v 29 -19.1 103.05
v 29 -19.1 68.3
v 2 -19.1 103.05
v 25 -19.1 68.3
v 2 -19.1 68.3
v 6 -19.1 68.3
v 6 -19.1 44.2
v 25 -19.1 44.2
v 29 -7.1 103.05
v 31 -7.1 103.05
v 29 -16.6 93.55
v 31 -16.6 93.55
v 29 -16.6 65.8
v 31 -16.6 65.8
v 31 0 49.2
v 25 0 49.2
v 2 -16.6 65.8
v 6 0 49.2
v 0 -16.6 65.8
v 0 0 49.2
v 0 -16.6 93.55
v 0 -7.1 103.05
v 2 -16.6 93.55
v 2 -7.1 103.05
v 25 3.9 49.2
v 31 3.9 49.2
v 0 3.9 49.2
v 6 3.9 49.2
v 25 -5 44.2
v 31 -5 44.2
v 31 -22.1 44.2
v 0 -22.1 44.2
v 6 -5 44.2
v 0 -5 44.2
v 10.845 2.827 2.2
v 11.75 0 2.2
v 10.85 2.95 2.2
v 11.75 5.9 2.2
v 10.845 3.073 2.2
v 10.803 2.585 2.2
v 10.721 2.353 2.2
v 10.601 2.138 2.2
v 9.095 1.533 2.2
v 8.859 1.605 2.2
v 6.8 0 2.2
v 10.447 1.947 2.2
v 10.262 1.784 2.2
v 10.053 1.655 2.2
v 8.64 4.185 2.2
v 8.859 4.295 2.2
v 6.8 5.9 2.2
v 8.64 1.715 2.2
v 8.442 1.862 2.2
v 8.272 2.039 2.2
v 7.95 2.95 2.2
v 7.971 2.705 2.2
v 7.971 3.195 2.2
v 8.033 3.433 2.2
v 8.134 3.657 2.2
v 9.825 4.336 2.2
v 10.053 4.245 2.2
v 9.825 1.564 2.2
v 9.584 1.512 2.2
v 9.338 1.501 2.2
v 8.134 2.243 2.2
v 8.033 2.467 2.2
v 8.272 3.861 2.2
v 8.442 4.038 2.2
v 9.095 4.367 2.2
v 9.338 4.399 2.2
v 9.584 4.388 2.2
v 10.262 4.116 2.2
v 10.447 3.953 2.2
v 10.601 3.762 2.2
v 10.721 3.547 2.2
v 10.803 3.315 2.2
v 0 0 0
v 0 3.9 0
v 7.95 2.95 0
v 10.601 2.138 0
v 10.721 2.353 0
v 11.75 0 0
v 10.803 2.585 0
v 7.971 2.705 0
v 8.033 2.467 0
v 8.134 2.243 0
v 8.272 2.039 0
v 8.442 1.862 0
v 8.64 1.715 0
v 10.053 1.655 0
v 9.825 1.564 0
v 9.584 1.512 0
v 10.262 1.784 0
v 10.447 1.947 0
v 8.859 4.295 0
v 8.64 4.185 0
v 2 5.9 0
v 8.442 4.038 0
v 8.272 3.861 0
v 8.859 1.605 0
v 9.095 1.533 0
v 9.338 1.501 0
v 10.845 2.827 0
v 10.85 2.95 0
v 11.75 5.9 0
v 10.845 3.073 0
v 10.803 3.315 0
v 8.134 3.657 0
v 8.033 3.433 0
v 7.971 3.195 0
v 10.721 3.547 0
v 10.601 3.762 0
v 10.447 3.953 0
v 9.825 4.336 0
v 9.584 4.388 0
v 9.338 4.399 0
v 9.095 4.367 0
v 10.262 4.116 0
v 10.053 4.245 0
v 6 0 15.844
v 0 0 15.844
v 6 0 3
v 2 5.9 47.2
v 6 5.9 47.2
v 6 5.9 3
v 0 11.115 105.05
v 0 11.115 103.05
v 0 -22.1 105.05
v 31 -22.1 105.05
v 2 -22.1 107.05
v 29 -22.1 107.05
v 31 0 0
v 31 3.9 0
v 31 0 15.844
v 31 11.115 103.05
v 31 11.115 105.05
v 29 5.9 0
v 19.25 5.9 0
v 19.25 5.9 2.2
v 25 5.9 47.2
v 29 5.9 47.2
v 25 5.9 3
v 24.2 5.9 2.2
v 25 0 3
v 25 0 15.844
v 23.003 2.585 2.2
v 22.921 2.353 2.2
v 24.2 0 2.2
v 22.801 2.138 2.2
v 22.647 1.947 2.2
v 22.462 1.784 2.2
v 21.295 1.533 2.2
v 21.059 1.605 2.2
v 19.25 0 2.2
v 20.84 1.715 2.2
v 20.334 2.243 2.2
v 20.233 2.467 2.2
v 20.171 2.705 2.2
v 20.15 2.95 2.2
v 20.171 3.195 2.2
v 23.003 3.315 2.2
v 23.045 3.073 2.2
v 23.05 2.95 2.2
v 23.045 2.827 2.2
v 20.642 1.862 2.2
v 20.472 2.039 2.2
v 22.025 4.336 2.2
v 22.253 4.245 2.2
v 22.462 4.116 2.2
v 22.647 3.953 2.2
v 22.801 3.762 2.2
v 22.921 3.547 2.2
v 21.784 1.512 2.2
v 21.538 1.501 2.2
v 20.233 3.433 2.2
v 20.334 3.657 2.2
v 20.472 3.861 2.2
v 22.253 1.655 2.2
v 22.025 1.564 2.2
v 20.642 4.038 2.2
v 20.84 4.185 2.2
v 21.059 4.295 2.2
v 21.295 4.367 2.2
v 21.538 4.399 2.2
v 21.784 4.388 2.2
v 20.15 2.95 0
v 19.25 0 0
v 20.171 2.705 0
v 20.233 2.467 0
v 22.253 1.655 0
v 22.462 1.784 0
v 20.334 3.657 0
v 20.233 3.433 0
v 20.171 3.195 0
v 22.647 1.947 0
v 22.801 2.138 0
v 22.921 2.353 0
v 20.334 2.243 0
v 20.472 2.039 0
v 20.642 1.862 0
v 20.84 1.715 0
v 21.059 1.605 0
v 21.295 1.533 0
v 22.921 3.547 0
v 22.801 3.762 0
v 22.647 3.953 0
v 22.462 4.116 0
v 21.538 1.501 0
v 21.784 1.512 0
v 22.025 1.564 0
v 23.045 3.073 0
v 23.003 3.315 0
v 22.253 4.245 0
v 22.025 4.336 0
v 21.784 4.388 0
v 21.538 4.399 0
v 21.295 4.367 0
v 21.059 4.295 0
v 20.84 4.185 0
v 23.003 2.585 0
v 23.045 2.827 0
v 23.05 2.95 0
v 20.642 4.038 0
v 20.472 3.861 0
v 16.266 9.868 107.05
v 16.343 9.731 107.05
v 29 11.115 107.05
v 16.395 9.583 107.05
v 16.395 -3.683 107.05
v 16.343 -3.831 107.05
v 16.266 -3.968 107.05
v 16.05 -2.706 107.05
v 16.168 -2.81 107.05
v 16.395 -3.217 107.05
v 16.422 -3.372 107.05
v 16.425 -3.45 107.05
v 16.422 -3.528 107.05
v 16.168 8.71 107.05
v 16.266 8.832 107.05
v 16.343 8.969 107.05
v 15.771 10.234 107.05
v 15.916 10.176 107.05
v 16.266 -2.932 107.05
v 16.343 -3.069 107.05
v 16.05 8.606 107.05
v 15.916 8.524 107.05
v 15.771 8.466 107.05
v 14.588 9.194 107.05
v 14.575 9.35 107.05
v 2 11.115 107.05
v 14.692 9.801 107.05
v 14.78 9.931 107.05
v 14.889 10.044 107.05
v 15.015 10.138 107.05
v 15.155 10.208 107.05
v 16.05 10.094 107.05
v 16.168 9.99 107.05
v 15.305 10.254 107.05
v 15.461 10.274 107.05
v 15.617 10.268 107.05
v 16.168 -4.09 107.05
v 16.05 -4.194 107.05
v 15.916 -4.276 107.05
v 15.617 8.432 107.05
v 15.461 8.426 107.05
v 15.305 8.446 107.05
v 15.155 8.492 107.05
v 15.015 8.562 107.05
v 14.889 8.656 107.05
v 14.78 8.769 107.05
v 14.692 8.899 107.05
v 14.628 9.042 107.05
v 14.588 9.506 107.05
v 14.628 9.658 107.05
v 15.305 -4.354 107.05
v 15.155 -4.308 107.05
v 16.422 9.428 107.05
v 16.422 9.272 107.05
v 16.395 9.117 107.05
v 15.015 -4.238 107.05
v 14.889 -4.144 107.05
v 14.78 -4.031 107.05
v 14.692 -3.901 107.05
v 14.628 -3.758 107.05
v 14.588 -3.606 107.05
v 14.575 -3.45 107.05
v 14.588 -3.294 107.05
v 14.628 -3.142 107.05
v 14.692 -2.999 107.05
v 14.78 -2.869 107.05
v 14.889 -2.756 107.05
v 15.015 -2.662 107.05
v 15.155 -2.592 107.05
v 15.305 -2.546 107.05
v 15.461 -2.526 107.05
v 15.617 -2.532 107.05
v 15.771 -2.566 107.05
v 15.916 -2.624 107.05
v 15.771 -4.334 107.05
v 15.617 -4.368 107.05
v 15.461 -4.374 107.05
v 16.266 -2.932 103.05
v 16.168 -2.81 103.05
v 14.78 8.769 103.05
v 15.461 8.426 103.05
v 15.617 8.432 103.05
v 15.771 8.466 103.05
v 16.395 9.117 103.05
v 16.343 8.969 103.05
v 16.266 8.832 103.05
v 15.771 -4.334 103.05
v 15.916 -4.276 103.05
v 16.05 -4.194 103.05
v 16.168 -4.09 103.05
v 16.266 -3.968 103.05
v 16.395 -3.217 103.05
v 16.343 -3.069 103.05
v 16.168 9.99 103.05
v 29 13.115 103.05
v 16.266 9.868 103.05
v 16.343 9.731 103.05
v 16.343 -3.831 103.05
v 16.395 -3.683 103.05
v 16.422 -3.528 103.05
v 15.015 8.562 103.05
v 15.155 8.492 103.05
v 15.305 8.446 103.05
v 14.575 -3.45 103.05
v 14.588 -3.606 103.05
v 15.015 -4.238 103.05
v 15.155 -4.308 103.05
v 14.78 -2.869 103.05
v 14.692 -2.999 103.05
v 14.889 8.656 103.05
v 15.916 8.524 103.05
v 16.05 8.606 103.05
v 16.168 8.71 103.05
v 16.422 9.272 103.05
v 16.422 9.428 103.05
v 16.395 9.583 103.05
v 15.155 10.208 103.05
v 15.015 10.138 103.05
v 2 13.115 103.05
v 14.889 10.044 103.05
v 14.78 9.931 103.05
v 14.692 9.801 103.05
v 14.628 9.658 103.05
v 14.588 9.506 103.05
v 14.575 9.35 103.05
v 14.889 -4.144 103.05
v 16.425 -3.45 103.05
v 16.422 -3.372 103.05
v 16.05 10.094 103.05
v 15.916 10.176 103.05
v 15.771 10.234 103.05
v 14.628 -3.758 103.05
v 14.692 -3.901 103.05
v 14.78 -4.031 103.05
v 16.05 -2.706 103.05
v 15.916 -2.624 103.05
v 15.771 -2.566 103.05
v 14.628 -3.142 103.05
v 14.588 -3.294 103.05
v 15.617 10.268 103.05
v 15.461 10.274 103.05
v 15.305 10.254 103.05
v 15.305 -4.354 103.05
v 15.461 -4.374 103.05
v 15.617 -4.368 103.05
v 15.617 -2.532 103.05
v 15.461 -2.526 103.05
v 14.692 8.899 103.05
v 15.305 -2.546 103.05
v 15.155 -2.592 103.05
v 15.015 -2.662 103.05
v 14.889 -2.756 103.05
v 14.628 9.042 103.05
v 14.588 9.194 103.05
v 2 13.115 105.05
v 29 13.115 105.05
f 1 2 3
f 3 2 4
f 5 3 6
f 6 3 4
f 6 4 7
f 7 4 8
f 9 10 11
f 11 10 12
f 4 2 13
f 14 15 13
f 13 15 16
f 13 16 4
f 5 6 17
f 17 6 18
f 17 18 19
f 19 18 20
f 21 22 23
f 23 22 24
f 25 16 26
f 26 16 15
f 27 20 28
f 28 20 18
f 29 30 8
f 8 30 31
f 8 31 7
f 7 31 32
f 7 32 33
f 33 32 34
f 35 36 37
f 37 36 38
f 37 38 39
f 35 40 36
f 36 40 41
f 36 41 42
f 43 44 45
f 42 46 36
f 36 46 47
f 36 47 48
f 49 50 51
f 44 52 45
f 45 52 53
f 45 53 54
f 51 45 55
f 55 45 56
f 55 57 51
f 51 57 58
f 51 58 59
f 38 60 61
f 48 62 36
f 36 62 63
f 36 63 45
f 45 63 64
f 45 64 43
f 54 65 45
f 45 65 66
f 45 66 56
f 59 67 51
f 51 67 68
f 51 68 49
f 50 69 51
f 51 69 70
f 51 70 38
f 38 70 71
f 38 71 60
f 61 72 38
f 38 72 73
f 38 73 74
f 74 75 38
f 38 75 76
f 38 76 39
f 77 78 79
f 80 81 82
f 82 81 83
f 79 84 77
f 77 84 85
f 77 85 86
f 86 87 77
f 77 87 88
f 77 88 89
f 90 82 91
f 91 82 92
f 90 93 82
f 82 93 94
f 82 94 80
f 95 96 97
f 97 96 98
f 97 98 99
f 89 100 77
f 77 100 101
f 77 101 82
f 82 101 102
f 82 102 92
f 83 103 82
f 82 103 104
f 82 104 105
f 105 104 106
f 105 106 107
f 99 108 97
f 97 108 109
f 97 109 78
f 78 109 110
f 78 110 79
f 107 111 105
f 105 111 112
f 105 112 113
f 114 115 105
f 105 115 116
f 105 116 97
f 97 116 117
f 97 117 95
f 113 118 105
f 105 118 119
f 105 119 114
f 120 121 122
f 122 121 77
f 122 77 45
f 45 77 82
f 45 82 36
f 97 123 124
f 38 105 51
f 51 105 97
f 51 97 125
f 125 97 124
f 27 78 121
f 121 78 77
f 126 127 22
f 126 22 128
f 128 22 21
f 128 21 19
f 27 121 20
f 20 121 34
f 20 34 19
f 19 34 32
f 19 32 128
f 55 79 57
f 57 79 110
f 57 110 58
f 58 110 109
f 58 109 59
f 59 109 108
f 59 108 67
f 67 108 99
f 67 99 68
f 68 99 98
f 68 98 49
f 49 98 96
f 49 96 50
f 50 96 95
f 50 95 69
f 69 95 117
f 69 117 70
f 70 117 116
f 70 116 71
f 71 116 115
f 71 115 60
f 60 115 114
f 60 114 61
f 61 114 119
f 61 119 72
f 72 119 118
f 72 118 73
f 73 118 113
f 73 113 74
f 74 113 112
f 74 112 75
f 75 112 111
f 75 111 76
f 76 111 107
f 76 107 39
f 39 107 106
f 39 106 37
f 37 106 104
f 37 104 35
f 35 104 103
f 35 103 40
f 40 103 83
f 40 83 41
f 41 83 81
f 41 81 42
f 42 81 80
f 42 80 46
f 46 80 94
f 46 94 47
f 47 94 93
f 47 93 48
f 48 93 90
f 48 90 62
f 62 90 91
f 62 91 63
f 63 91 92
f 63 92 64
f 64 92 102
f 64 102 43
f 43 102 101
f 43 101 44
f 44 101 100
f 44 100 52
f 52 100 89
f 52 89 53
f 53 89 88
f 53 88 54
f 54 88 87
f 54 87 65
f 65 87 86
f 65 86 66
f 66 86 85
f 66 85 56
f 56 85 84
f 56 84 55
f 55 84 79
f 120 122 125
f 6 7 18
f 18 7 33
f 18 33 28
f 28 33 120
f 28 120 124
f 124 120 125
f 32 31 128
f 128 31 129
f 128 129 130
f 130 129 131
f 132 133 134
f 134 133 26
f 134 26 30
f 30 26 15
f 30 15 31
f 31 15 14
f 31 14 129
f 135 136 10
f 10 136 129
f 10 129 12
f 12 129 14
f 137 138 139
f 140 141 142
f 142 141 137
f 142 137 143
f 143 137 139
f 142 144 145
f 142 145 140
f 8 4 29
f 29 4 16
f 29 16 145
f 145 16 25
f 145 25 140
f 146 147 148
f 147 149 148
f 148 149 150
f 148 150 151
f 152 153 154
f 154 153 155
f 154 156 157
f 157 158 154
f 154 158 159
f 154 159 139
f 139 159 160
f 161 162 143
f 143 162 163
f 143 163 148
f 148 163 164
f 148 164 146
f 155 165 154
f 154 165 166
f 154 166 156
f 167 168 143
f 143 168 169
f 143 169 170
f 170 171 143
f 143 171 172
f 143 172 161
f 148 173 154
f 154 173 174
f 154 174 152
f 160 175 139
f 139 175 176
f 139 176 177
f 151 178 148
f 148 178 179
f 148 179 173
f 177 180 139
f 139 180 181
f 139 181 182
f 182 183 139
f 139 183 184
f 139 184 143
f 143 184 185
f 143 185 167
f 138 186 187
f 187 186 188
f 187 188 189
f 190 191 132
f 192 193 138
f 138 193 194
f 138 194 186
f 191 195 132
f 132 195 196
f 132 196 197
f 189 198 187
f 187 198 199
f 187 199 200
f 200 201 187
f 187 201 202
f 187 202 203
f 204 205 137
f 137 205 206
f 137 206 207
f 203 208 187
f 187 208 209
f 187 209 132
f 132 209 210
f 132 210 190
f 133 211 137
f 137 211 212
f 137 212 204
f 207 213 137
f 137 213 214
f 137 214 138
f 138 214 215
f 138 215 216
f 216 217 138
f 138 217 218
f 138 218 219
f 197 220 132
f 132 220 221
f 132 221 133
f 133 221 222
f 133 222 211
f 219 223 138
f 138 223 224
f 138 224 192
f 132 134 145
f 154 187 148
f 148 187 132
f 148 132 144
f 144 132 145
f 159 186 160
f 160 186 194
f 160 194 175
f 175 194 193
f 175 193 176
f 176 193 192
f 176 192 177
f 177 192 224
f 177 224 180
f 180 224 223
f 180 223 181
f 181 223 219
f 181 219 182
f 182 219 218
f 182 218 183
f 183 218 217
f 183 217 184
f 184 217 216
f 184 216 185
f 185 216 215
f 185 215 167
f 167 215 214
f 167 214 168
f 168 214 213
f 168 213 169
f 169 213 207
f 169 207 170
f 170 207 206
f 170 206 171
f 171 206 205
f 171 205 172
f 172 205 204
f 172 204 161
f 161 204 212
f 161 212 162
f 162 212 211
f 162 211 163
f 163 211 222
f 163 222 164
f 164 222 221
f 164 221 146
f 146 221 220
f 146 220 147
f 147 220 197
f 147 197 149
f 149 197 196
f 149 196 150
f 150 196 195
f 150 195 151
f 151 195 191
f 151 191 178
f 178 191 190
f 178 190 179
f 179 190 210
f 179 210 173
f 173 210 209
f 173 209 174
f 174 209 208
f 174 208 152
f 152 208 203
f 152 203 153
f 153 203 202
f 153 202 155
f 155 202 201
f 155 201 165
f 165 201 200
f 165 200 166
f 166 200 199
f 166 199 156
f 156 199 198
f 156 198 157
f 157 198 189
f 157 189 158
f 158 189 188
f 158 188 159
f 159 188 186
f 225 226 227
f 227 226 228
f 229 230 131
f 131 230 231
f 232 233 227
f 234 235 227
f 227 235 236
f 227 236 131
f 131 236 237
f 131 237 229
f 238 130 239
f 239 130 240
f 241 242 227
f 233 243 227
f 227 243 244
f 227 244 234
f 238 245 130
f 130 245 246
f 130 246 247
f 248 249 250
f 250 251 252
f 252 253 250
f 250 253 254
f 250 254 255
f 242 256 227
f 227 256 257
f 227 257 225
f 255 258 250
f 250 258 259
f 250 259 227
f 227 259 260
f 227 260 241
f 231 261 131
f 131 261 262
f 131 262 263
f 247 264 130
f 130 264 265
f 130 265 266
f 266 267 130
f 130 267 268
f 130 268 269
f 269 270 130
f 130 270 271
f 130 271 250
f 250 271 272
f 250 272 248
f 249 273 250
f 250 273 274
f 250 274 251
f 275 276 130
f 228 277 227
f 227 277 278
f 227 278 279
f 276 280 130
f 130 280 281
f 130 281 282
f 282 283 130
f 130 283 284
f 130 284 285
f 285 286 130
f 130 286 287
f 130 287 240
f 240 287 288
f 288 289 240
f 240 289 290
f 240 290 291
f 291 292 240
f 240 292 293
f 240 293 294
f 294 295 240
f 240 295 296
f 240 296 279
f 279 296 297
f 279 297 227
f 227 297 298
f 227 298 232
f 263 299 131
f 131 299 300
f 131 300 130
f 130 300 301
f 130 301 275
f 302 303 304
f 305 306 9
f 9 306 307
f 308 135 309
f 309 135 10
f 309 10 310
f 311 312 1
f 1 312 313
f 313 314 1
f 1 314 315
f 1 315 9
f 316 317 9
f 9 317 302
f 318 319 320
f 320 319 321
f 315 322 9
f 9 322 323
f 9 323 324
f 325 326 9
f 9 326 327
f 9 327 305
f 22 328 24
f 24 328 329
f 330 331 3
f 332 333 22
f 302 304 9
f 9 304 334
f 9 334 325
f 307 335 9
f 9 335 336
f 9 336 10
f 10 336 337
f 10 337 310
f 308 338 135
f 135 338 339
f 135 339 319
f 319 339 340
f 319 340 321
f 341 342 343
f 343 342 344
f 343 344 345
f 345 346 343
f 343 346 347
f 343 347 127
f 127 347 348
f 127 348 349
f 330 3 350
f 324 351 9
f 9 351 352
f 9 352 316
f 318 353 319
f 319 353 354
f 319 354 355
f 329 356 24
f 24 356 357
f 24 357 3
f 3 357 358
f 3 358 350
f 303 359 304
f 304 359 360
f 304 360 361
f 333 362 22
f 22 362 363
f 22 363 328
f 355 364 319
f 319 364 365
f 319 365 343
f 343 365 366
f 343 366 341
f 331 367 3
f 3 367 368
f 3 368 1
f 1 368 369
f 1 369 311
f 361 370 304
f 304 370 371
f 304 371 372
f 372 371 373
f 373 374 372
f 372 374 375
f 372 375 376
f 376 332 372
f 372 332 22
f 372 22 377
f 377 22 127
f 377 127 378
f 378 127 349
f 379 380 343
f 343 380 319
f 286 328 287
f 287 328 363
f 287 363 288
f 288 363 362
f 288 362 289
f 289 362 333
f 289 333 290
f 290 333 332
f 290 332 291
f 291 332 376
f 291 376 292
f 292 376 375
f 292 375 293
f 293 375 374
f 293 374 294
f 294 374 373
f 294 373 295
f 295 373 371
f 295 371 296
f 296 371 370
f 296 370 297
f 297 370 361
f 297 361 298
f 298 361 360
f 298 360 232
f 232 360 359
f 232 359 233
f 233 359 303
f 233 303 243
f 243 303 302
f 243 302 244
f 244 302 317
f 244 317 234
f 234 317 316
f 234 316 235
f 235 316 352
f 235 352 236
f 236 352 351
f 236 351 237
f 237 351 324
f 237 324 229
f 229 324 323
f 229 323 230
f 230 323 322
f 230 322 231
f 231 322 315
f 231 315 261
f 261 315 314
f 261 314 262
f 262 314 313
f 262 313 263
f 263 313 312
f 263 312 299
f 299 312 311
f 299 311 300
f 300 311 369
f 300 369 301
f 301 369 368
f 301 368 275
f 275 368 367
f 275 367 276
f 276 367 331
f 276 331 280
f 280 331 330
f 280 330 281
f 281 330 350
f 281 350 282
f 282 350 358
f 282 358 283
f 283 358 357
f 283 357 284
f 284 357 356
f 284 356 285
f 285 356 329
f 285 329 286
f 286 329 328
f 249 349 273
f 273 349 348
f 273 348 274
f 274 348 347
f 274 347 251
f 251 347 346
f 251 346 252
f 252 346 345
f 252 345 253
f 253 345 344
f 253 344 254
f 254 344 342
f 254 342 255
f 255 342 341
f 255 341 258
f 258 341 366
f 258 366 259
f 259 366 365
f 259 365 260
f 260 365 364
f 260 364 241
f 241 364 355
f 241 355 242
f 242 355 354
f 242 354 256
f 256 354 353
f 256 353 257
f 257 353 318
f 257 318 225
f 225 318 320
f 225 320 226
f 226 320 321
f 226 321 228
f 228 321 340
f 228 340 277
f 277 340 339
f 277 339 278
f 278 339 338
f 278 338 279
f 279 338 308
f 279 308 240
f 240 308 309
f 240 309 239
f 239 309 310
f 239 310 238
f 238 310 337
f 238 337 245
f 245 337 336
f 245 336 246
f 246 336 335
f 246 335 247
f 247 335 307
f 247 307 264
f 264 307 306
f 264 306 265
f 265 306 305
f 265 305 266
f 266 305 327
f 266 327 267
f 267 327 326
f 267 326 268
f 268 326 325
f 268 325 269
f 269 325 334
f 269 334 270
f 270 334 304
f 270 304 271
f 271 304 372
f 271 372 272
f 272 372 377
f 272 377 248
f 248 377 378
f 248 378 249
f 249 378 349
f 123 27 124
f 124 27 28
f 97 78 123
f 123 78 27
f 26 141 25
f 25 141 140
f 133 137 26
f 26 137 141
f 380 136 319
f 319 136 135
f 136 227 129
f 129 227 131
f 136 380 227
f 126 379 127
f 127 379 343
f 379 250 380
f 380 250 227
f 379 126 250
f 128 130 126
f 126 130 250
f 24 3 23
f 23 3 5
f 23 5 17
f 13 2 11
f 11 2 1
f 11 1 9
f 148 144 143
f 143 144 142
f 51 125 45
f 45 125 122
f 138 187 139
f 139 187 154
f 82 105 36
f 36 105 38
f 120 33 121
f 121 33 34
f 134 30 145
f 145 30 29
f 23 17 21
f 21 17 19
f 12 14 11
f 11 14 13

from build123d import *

# Parameters (mm, degrees)
SKETCH1_R             = 1.45
BOSS_EXTRUDE1_DEPTH   = 2.2
BOSS_EXTRUDE1_2_DEPTH = 2.2
SKETCH8_W             = 6
SKETCH8_H             = 5.9
BOSS_EXTRUDE6_DEPTH   = 42
BOSS_EXTRUDE7_DEPTH   = 5
SKETCH10_W            = 31
SKETCH10_H            = 3
BOSS_EXTRUDE8_DEPTH   = 53.85
SKETCH11_W            = 31
SKETCH11_H            = 35.214875224
SKETCH11_R            = 0.925
BOSS_EXTRUDE9_DEPTH   = 4
CHAMFER6_SIZE         = 19.1
CHAMFER7_SIZE         = 12
CHAMFER8_SIZE         = 2
CUT_EXTRUDE2_START    = 2
CUT_EXTRUDE2_DEPTH    = 27
CHAMFER10_SIZE        = 0.8
SKETCH14_W            = 7.5
SKETCH14_H            = 5.9
CUT_EXTRUDE3_DEPTH    = 112.547893301
CHAMFER11_SIZE        = 5
CHAMFER11_SIZE2       = 28.356409098
SKETCH15_W            = 2
SKETCH15_H            = 27.75
BOSS_EXTRUDE10_DEPTH  = 2.5


with BuildPart() as part:
    # Sketch1 → Boss-Extrude1 (new body)
    with BuildSketch(Plane.XY):
        Polygon((0, 0), (0, 5.9), (12.25, 5.9), (12.25, 0), (2.5, 0), align=None)
        with Locations((9.4, 2.95)):
            Circle(SKETCH1_R, mode=Mode.SUBTRACT)
    extrude(amount=BOSS_EXTRUDE1_DEPTH)



with BuildPart() as body_2:
    # Sketch1 → Boss-Extrude1 2 (new body)
    with BuildSketch(Plane.XY):
        Polygon((31, 0), (31, 5.9), (18.75, 5.9), (18.75, 0), (28.5, 0), align=None)
        with Locations((21.6, 2.95)):
            Circle(SKETCH1_R, mode=Mode.SUBTRACT)
    extrude(amount=BOSS_EXTRUDE1_2_DEPTH)


with BuildPart() as part_1:
    add(part.part)

    add(body_2.part)  # Boss-Extrude6 merges body 2
    # Sketch8 → Boss-Extrude6 (add)
    with BuildSketch(Plane.XY.offset(2.2)):
        with Locations((3, 2.95)):
            Rectangle(SKETCH8_W, SKETCH8_H)
        with Locations((28, 2.95)):
            Rectangle(SKETCH8_W, SKETCH8_H)
    extrude(amount=BOSS_EXTRUDE6_DEPTH)

    # Sketch9 → Boss-Extrude7 (add)
    with BuildSketch(Plane.XY.offset(44.2)):
        Polygon((0, 5.9), (0, -22.1), (31, -22.1), (31, 5.9), (25, 5.9), (25, -19.1), (6, -19.1), (6, 5.9), align=None)
    extrude(amount=BOSS_EXTRUDE7_DEPTH)

    # Sketch10 → Boss-Extrude8 (add)
    with BuildSketch(Plane.XY.offset(49.2)):
        with Locations((15.5, -20.6)):
            Rectangle(SKETCH10_W, SKETCH10_H)
    extrude(amount=BOSS_EXTRUDE8_DEPTH)

    # Sketch11 → Boss-Extrude9 (add)
    with BuildSketch(Plane.XY.offset(103.05)):
        with Locations((15.5, -4.492562388)):
            Rectangle(SKETCH11_W, SKETCH11_H)
        with Locations((15.5, -3.45)):
            Circle(SKETCH11_R, mode=Mode.SUBTRACT)
        with Locations(Location((15.5, 9.35, 0), (0, 0, 180))):
            Circle(SKETCH11_R, mode=Mode.SUBTRACT)
    extrude(amount=BOSS_EXTRUDE9_DEPTH)

    # Chamfer6
    chamfer6_edges = [part_1.edges().sort_by_distance(p)[0] for p in [
        (3, -19.1, 49.2),
        (28, -19.1, 49.2),
    ]]
    chamfer(chamfer6_edges, length=CHAMFER6_SIZE)

    # Chamfer7
    chamfer7_edges = [part_1.edges().sort_by_distance(p)[0] for p in [
        (15.5, -19.1, 103.05),
    ]]
    chamfer(chamfer7_edges, length=CHAMFER7_SIZE)

    # Chamfer8
    chamfer8_edges = [part_1.edges().sort_by_distance(p)[0] for p in [
        (0, -4.492562388, 107.05),
        (31, -4.492562388, 107.05),
        (15.5, 13.114875224, 107.05),
        (0, 13.114875224, 105.05),
        (31, 13.114875224, 105.05),
        (31, 5.9, 24.6),
        (3, 5.9, 49.2),
        (28, 5.9, 49.2),
        (0, 5.9, 24.6),
    ]]
    chamfer(chamfer8_edges, length=CHAMFER8_SIZE)

    # Sketch13 → Cut-Extrude2 (cut)
    with BuildSketch(Plane(origin=(0, 0, 0), x_dir=(0, 0, -1), z_dir=(1, 0, 0)).offset(CUT_EXTRUDE2_START)):
        Polygon((-103.05, -7.1), (-91.05, -19.1), (-103.05, -19.1), align=None)
    extrude(amount=CUT_EXTRUDE2_DEPTH, mode=Mode.SUBTRACT)

    # Chamfer10
    chamfer10_edges = [part_1.edges().sort_by_distance(p)[0] for p in [
        (6, 2.95, 2.2),
        (25, 2.95, 2.2),
    ]]
    chamfer(chamfer10_edges, length=CHAMFER10_SIZE)

    # Sketch14 → Cut-Extrude3 (cut, through all)
    with BuildSketch(Plane.XY.offset(2.2)):
        with Locations((15.5, 2.95)):
            Rectangle(SKETCH14_W, SKETCH14_H)
    extrude(amount=-CUT_EXTRUDE3_DEPTH, mode=Mode.SUBTRACT)

    # Chamfer11
    chamfer11_edges = [part_1.edges().sort_by_distance(p)[0] for p in [
        (3, 0, 44.2),
        (28, 0, 44.2),
    ]]
    chamfer11_side = [part_1.faces().sort_by_distance(p)[0] for p in [
        (3, -0.380711177, 44.2),
    ]]
    chamfer(chamfer11_edges, length=CHAMFER11_SIZE, length2=CHAMFER11_SIZE2, reference=chamfer11_side[0])

    # Sketch15 → Boss-Extrude10 (add)
    with BuildSketch(Plane(origin=(0, -19.1, 0), x_dir=(1, 0, 0), z_dir=(0, 1, 0))):
        with Locations((1, -79.675)):
            Rectangle(SKETCH15_W, SKETCH15_H)
        with Locations((30, -79.675)):
            Rectangle(SKETCH15_W, SKETCH15_H)
    extrude(amount=BOSS_EXTRUDE10_DEPTH)


solid = part_1.part
